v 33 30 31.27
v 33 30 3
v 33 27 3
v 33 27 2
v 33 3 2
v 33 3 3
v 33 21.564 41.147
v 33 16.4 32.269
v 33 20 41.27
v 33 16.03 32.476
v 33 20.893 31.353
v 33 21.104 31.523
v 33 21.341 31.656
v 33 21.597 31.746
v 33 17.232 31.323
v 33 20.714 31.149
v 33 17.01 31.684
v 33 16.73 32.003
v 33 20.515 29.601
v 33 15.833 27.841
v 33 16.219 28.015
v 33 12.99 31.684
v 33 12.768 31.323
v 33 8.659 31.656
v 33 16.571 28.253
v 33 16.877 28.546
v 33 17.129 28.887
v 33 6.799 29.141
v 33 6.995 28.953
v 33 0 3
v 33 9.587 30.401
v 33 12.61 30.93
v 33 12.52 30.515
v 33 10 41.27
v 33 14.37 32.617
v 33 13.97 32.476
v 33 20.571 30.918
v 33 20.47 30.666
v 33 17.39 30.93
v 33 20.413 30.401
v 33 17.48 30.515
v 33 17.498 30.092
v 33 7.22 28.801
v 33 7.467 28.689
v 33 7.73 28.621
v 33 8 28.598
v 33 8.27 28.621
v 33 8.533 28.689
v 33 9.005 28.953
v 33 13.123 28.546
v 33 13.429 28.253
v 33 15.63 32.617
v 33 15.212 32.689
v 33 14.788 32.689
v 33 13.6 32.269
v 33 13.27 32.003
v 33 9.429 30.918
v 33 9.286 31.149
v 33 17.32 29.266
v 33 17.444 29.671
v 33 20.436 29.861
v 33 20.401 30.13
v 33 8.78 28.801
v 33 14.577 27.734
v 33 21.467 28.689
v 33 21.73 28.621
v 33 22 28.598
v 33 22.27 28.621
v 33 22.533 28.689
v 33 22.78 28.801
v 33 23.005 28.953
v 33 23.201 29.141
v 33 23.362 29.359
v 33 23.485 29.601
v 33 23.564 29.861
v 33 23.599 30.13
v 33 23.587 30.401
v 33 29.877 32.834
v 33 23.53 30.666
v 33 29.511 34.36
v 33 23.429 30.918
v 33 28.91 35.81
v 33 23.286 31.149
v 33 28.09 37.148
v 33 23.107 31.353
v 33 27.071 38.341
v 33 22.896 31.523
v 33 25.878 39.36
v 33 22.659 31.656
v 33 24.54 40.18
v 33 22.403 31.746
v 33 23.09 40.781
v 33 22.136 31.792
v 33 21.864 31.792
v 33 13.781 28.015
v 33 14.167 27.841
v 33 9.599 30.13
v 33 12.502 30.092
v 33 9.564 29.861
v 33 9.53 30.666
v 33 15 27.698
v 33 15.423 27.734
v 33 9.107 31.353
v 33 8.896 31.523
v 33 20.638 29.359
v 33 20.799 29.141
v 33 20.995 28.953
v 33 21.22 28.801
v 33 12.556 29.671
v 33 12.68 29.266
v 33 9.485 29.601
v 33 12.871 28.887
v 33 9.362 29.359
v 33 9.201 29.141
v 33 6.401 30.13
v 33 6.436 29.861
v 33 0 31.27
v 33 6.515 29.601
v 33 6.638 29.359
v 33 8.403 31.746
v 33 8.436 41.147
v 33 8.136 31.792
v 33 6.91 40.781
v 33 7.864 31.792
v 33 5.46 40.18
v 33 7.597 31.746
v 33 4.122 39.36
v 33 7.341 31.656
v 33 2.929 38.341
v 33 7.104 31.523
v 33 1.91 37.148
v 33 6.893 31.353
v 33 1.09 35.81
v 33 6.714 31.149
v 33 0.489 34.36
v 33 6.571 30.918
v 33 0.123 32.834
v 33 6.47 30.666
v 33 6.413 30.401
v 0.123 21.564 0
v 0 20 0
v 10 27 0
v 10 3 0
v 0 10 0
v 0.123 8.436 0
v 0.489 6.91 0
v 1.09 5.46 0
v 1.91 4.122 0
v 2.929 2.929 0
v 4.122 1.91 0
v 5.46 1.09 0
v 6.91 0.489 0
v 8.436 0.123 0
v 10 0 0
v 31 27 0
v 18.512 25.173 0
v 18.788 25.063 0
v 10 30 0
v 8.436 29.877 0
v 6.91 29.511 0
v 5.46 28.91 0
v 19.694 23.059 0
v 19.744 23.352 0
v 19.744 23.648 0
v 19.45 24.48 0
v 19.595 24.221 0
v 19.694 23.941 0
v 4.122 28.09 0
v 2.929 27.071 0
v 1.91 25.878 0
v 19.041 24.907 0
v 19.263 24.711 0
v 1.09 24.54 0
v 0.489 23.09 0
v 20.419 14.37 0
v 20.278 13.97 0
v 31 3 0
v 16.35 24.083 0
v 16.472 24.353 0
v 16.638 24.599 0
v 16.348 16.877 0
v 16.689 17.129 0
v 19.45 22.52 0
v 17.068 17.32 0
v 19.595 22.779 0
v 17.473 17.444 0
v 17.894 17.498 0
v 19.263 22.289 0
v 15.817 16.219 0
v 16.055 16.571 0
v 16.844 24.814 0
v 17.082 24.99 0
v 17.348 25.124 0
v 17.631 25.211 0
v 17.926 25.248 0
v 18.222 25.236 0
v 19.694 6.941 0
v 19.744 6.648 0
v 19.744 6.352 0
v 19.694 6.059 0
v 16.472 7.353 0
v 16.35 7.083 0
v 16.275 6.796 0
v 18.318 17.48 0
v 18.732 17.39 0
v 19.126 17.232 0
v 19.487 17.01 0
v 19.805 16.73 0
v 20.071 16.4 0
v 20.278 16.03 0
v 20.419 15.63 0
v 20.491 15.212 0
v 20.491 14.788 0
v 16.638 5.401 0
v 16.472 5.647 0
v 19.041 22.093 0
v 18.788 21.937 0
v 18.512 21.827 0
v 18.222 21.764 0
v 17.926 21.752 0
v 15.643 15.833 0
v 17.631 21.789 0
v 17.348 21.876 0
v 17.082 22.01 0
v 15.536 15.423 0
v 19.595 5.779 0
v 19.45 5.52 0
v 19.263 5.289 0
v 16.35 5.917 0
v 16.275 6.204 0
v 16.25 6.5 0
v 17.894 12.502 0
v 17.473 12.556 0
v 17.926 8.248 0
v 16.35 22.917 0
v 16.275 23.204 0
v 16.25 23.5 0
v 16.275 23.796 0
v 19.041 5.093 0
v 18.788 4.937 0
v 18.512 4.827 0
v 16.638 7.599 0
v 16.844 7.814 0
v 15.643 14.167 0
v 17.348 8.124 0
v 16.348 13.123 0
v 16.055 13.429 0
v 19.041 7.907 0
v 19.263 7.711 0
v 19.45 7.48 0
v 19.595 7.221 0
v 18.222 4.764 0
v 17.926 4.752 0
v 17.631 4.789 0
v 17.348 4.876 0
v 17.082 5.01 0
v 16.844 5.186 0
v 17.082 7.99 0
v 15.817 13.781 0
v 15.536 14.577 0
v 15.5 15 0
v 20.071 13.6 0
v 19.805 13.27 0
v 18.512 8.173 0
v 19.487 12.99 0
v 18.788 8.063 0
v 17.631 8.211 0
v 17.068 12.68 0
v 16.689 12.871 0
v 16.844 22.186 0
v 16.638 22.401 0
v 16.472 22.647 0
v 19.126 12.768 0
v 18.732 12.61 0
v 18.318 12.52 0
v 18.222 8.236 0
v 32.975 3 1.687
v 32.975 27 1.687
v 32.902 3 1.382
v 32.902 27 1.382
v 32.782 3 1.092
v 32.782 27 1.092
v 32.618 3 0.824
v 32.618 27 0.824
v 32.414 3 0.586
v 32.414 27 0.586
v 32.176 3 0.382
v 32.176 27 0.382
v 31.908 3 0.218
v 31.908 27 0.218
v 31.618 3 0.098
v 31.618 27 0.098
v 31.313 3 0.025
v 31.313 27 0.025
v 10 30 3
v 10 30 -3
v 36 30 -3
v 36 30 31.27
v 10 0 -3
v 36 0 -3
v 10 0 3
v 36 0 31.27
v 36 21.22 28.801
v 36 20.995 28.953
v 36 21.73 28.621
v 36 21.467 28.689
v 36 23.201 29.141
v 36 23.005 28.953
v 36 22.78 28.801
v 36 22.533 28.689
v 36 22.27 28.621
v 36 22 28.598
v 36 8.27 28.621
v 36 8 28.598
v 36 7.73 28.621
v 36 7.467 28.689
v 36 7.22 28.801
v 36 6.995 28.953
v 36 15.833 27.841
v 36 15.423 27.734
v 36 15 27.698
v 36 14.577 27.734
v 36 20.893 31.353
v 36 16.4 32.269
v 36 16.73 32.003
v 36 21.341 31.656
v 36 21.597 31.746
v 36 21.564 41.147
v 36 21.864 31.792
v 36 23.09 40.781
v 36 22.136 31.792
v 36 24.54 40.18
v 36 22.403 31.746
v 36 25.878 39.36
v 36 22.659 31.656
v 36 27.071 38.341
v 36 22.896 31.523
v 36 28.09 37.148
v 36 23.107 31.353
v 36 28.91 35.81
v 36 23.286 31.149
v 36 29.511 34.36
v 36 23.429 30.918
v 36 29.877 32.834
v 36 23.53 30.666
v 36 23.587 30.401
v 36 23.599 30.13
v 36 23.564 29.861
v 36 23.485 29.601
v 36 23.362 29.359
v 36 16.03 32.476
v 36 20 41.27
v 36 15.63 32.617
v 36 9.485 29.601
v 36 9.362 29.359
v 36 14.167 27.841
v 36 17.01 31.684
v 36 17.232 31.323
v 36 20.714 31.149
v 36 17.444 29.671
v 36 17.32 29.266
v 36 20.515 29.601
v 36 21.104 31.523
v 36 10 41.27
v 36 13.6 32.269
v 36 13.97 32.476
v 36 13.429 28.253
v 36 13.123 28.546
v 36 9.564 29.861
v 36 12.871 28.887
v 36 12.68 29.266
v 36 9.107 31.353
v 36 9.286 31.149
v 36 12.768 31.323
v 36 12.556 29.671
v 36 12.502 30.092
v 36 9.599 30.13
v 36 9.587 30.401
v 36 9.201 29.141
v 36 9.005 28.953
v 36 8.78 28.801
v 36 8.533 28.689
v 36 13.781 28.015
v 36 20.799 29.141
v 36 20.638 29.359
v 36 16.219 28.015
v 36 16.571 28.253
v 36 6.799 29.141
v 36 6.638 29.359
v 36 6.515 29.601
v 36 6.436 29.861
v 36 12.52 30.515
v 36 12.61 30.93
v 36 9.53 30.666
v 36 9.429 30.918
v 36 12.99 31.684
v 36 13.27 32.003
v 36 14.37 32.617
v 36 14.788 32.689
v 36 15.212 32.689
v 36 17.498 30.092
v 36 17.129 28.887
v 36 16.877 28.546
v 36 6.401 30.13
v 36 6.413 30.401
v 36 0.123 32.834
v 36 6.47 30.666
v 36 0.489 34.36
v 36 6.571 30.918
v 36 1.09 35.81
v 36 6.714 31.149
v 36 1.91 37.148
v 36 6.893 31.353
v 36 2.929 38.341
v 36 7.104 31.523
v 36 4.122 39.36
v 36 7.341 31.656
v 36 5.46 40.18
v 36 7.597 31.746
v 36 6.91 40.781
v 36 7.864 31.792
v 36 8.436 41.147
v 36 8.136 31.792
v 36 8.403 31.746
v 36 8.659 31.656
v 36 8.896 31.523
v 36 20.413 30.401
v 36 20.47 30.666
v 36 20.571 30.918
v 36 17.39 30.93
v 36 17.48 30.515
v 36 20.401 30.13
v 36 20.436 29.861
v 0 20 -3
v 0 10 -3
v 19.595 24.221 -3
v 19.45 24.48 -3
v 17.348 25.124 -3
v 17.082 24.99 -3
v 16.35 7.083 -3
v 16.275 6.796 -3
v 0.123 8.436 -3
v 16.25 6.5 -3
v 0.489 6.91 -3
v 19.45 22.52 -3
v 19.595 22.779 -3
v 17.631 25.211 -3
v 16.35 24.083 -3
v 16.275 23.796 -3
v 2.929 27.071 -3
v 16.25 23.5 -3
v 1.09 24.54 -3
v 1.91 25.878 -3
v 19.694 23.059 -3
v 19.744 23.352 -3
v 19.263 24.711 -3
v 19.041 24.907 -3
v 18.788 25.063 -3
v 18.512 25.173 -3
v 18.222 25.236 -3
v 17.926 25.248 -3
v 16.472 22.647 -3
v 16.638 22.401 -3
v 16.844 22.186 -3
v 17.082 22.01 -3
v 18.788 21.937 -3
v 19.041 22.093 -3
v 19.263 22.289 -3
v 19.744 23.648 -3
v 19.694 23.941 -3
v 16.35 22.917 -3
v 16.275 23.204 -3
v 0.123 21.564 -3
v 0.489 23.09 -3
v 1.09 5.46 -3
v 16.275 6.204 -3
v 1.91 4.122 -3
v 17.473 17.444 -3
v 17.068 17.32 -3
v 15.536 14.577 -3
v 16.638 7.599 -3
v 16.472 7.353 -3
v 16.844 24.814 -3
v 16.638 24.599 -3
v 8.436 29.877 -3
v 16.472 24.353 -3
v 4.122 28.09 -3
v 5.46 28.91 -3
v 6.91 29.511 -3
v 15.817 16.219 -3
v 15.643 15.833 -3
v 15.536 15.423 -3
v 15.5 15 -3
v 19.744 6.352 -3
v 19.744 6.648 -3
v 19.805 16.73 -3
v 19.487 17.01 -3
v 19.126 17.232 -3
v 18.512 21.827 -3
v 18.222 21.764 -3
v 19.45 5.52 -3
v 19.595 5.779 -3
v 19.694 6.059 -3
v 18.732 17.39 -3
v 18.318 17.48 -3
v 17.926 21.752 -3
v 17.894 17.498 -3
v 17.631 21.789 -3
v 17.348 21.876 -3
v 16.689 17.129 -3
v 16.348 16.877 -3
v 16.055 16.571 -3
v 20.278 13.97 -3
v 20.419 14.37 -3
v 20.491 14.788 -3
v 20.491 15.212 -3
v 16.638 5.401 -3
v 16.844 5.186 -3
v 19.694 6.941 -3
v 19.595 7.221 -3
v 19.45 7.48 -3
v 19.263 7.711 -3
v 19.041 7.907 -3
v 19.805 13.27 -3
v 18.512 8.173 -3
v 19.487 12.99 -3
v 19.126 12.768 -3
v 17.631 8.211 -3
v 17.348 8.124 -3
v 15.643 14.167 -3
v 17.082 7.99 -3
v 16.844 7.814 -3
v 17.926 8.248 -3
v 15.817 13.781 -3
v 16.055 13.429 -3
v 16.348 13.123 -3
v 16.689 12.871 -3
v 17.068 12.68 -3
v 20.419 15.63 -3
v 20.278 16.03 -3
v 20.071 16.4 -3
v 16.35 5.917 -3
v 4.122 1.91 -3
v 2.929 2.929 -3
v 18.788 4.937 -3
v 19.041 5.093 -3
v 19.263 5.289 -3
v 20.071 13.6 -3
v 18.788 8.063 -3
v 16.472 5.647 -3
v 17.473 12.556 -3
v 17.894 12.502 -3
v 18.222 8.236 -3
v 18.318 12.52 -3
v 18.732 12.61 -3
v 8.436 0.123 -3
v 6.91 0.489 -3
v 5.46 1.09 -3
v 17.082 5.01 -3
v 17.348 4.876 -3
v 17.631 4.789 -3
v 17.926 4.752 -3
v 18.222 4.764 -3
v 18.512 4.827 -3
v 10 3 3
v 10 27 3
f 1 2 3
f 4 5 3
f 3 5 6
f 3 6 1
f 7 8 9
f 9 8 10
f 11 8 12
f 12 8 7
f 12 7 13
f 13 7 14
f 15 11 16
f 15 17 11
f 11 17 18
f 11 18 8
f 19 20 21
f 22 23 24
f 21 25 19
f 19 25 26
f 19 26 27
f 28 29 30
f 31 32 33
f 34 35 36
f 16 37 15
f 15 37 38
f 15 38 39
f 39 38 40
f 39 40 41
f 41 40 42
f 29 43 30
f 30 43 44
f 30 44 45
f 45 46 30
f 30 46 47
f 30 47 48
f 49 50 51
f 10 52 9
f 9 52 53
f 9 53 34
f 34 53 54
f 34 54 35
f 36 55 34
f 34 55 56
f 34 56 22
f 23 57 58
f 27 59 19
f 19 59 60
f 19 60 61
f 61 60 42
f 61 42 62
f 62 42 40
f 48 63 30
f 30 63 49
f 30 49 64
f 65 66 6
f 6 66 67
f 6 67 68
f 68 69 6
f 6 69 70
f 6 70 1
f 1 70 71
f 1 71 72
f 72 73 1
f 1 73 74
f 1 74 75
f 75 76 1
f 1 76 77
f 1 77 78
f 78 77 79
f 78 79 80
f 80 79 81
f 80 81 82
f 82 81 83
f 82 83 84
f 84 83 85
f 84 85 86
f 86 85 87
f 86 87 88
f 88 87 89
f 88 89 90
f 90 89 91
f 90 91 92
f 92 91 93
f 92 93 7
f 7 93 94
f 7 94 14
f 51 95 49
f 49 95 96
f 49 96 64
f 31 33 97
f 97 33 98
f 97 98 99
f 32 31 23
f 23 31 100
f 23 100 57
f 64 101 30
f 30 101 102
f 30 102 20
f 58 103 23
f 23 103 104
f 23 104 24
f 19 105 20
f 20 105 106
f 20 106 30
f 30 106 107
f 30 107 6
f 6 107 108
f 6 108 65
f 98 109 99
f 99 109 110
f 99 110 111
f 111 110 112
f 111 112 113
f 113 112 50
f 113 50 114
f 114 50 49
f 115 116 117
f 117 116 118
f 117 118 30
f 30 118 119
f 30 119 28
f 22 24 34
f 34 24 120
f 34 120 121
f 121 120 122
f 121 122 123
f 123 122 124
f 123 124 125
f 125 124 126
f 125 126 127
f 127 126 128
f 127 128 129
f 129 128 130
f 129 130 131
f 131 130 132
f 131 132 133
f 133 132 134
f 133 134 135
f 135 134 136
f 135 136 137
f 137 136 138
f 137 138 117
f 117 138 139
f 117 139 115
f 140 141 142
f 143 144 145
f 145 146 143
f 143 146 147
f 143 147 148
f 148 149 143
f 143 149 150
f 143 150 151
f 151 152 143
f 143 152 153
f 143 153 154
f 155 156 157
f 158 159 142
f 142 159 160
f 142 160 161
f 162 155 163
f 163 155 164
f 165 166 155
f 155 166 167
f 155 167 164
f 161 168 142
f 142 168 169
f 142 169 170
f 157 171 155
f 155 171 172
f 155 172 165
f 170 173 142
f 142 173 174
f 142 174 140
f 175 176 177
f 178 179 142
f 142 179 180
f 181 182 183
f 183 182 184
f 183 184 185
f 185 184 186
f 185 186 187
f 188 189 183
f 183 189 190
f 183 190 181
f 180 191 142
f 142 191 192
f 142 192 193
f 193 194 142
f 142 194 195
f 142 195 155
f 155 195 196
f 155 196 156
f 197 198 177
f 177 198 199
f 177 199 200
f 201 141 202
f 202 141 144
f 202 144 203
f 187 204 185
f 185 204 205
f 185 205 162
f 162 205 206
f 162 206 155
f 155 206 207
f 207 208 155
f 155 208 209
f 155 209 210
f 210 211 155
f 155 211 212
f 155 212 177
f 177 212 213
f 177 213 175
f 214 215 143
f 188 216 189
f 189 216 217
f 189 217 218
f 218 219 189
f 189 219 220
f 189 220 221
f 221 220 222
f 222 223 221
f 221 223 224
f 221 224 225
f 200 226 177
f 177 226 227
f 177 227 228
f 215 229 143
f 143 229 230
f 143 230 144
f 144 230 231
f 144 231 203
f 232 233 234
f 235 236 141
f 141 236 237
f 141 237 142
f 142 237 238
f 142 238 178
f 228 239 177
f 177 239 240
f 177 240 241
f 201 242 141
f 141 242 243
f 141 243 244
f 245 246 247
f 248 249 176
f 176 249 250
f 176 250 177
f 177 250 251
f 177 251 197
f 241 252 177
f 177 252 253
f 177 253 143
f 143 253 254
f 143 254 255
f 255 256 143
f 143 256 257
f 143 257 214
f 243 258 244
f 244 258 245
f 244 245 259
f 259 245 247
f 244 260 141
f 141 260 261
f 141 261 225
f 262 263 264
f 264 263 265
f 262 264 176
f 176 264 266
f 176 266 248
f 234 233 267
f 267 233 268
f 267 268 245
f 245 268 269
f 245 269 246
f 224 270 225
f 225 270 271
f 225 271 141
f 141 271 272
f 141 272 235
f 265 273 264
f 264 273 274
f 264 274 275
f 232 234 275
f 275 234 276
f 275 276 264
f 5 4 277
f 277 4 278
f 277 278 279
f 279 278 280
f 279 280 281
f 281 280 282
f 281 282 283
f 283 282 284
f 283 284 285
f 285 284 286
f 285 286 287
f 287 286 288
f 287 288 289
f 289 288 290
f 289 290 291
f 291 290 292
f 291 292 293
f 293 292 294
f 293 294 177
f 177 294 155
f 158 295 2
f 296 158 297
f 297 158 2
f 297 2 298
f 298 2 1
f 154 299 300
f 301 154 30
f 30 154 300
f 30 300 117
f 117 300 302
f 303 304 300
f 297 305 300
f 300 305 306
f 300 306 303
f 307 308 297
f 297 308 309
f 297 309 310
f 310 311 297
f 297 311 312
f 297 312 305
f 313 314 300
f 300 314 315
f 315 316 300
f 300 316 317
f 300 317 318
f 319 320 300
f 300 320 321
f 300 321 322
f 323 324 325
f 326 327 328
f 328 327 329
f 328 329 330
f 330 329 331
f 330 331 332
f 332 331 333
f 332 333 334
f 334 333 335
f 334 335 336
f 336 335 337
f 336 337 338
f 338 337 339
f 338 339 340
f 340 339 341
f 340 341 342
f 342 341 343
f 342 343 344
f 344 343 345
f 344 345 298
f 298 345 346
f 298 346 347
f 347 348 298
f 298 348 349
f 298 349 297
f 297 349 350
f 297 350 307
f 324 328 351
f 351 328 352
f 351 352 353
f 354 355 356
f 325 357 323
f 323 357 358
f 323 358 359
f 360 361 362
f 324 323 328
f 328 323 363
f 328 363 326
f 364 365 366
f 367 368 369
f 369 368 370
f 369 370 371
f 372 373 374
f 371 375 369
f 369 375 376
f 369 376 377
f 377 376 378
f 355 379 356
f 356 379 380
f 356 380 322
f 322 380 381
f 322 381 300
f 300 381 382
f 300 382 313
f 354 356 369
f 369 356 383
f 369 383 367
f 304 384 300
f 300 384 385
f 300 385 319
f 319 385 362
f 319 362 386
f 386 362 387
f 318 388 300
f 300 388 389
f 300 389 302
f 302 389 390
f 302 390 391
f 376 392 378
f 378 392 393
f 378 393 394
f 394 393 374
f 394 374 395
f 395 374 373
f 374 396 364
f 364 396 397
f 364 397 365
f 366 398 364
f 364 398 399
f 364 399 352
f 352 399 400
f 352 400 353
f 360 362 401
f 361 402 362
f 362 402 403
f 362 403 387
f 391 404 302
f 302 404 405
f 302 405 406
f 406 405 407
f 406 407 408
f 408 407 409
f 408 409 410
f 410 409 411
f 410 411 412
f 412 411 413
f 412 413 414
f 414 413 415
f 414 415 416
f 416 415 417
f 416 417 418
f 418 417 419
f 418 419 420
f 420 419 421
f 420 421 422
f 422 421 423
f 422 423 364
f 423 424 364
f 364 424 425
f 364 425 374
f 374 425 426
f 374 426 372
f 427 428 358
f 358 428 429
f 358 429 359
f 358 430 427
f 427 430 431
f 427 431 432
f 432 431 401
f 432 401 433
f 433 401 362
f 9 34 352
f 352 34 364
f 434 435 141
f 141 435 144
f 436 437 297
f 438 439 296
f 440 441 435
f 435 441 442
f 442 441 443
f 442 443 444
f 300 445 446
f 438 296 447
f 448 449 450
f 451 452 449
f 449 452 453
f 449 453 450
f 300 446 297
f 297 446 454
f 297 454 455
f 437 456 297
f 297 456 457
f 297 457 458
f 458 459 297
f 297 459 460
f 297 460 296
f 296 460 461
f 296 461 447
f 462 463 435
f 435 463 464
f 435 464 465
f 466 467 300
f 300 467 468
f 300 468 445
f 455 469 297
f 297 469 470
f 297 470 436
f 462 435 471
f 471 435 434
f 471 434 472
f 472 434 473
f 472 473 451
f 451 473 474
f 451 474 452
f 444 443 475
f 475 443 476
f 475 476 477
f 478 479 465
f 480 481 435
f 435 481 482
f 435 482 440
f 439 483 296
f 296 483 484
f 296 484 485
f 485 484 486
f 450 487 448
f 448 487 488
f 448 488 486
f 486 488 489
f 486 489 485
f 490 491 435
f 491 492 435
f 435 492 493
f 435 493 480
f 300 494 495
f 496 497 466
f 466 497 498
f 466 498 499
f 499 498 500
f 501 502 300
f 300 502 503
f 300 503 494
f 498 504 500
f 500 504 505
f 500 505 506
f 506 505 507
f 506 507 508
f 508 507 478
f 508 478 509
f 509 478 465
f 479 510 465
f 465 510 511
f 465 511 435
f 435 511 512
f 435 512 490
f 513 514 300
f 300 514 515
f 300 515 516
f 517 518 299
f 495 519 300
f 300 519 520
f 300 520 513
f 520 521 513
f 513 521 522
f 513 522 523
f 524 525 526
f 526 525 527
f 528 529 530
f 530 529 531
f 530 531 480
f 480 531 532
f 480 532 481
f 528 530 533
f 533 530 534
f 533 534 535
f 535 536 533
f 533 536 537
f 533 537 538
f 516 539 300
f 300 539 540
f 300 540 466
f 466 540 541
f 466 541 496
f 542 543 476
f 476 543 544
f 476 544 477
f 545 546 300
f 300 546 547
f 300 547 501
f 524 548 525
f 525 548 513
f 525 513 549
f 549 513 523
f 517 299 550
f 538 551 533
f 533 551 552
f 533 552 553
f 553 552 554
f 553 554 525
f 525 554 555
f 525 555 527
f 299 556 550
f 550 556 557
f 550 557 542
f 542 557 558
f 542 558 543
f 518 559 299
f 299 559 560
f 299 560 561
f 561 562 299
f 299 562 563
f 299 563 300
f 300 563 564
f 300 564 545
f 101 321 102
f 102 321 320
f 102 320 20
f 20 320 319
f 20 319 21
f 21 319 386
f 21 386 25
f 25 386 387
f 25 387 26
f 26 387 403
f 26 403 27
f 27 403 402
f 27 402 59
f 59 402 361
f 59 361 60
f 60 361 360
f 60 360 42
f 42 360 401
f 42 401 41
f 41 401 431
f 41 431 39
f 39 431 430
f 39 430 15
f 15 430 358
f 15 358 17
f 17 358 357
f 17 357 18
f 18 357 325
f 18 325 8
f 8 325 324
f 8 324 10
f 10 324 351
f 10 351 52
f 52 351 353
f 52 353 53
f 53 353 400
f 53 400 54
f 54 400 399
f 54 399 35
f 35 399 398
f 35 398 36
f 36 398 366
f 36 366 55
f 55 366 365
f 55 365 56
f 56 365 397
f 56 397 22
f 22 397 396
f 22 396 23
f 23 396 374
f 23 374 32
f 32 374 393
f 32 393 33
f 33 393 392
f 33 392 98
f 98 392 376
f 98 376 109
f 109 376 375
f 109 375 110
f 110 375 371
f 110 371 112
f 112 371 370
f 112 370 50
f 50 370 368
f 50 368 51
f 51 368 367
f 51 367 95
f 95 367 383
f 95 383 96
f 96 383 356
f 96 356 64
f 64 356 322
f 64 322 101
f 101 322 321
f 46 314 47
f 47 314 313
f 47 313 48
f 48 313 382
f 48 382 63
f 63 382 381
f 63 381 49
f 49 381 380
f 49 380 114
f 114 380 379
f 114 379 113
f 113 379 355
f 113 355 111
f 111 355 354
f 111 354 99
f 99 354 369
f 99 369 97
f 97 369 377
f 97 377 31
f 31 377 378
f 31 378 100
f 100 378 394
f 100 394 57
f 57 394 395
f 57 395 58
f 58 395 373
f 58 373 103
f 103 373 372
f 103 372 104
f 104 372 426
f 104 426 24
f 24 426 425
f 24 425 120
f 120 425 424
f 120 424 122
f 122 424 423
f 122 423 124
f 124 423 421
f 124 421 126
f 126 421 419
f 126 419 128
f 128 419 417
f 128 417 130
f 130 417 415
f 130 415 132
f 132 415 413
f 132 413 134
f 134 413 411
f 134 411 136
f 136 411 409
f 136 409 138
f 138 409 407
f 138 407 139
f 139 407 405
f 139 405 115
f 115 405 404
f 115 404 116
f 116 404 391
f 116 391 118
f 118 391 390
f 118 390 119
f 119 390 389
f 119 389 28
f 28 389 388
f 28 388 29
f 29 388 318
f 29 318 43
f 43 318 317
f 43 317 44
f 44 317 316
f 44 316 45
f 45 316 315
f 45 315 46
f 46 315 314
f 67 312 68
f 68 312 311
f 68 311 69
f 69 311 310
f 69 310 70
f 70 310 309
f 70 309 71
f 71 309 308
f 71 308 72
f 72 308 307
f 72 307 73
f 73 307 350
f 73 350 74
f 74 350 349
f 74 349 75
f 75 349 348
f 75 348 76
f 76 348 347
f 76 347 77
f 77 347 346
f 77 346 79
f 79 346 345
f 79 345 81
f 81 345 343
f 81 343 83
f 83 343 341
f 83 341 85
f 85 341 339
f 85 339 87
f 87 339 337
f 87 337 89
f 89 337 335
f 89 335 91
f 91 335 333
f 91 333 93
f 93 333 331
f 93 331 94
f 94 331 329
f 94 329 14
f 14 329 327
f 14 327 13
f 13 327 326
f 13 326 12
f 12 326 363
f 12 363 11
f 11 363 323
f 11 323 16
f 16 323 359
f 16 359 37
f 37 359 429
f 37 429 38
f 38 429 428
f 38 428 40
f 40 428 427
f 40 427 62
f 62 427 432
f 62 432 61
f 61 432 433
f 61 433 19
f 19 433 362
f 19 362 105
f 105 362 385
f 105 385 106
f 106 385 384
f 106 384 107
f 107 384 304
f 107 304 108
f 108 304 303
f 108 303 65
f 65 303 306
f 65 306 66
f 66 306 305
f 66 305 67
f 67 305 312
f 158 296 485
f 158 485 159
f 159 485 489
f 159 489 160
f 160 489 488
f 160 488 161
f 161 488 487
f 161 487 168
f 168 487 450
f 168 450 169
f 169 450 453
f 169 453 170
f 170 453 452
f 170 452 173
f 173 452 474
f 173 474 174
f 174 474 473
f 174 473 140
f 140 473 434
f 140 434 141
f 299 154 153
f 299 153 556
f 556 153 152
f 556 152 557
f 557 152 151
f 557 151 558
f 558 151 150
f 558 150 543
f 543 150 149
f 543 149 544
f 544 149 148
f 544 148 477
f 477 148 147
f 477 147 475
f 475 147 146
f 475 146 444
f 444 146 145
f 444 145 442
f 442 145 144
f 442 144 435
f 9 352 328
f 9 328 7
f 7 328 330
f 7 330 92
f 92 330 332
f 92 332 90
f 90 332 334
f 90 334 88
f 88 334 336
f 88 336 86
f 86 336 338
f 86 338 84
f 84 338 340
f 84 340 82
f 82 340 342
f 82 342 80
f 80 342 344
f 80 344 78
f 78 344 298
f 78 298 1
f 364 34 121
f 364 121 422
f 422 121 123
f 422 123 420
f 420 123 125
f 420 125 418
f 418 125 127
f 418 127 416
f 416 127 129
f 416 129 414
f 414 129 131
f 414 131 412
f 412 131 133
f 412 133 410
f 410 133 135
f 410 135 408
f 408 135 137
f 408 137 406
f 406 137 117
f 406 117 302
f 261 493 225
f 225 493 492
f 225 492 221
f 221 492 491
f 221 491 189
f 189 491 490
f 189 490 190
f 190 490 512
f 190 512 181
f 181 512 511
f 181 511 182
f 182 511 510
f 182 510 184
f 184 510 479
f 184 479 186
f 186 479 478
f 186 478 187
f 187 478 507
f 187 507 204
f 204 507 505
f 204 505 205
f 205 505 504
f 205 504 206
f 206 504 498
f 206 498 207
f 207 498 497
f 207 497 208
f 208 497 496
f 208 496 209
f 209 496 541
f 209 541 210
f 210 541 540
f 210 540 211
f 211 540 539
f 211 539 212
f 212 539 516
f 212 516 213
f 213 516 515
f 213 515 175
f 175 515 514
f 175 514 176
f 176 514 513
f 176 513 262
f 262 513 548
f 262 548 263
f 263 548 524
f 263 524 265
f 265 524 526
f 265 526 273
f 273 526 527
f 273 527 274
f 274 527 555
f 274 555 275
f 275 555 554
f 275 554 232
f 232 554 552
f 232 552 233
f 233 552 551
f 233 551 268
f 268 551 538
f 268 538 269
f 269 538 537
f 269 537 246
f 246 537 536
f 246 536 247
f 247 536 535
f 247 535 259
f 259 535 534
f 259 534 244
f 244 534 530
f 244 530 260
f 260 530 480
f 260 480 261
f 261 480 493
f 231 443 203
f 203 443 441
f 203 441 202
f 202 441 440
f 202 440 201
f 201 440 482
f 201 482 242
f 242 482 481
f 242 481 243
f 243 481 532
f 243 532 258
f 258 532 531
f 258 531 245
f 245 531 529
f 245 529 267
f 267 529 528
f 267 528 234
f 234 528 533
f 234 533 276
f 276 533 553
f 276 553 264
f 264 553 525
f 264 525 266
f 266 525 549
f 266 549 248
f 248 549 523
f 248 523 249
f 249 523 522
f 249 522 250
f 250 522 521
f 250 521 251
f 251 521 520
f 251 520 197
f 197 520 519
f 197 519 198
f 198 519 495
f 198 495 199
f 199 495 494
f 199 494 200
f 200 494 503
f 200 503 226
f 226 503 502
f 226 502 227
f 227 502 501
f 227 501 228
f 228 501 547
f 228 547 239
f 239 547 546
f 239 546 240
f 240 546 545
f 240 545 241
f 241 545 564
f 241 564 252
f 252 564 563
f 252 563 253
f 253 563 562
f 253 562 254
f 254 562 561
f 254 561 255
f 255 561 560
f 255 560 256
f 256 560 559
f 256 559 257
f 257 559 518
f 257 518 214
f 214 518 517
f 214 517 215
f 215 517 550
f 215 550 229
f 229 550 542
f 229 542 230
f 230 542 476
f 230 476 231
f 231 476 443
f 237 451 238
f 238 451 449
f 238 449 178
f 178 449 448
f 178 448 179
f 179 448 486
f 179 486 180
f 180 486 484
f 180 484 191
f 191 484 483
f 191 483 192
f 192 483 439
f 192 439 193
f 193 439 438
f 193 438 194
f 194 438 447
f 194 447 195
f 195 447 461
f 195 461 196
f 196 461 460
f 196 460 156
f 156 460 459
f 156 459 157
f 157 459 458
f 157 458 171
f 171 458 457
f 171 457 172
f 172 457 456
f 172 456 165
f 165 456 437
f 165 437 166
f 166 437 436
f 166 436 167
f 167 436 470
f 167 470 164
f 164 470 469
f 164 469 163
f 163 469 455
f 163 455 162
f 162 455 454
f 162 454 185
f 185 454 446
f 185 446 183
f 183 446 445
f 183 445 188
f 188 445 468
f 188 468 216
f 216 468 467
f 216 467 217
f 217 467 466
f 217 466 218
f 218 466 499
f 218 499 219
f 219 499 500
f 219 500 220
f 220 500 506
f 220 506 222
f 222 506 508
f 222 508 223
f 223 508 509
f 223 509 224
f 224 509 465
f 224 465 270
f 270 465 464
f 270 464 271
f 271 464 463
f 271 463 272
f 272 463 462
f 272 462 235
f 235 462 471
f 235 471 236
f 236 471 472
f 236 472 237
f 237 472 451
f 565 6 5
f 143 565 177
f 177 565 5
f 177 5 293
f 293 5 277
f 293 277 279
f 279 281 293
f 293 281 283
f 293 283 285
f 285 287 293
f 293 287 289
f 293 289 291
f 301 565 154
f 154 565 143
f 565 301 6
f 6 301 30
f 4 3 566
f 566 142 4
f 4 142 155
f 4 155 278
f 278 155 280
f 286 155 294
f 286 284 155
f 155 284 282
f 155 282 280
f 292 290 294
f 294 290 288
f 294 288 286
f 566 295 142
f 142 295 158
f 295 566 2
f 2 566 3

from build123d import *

# Parameters (mm, degrees)
ESQUISSE1_W             = 3
ESQUISSE1_H             = 30
BOSS_EXTRU_1_DEPTH      = 41.27
ESQUISSE1_3_W           = 36
ESQUISSE1_3_H           = 30
BOSS_EXTRU_2_DEPTH      = 3
ESQUISSE3_R             = 2.5
ESQUISSE3_R_2           = 1.6
ENL_V_MAT_EXTRU_2_DEPTH = 85
CONG_2_R                = 2
CONG_3_R                = 10
ESQUISSE7_R             = 2.5
ESQUISSE7_R_2           = 1.75
ENL_V_MAT_EXTRU_3_DEPTH = 10
ESQUISSE8_W             = 23
ESQUISSE8_H             = 3
BOSS_EXTRU_3_DEPTH      = 3


with BuildPart() as part:
    # Esquisse1 → Boss.-Extru.1 (new body)
    with BuildSketch(Plane.XY):
        with Locations((34.5, 15)):
            Rectangle(ESQUISSE1_W, ESQUISSE1_H)
    extrude(amount=BOSS_EXTRU_1_DEPTH)

    # Esquisse1<3> → Boss.-Extru.2 (add)
    with BuildSketch(Plane.XY):
        with Locations((18, 15)):
            Rectangle(ESQUISSE1_3_W, ESQUISSE1_3_H)
    extrude(amount=-BOSS_EXTRU_2_DEPTH)

    # Esquisse3 → Enlèv. mat.-Extru.2 (cut)
    with BuildSketch(Plane(origin=(36, 0, 0), x_dir=(0, 0, -1), z_dir=(1, 0, 0))):
        with Locations((-30.197874881, 15)):
            Circle(ESQUISSE3_R)
        with Locations((-30.197874881, 22)):
            Circle(ESQUISSE3_R_2)
        with Locations((-30.197874881, 8)):
            Circle(ESQUISSE3_R_2)
    extrude(amount=-ENL_V_MAT_EXTRU_2_DEPTH, mode=Mode.SUBTRACT)

    # Congé2
    cong_2_edges = [part.edges().sort_by_distance(p)[0] for p in [
        (33, 15, 0),
    ]]
    fillet(cong_2_edges, radius=CONG_2_R)

    # Congé3
    cong_3_edges = [part.edges().sort_by_distance(p)[0] for p in [
        (34.5, 0, 41.27),
        (0, 0, -1.5),
        (0, 30, -1.5),
        (34.5, 30, 41.27),
    ]]
    fillet(cong_3_edges, radius=CONG_3_R)

    # Esquisse7 → Enlèv. mat.-Extru.3 (cut)
    with BuildSketch(Plane(origin=(0, 0, -3), x_dir=(-1, 0, 0), z_dir=(0, 0, -1))):
        with Locations((-18, 15)):
            Circle(ESQUISSE7_R)
        with Locations((-18, 23.5)):
            Circle(ESQUISSE7_R_2)
        with Locations((-18, 6.5)):
            Circle(ESQUISSE7_R_2)
    extrude(amount=-ENL_V_MAT_EXTRU_3_DEPTH, mode=Mode.SUBTRACT)

    # Esquisse8 → Boss.-Extru.3 (add)
    with BuildSketch(Plane.XY):
        with Locations((21.5, 28.5)):
            Rectangle(ESQUISSE8_W, ESQUISSE8_H)
        with Locations((21.5, 1.5)):
            Rectangle(ESQUISSE8_W, ESQUISSE8_H)
    extrude(amount=BOSS_EXTRU_3_DEPTH)


solid = part.part
